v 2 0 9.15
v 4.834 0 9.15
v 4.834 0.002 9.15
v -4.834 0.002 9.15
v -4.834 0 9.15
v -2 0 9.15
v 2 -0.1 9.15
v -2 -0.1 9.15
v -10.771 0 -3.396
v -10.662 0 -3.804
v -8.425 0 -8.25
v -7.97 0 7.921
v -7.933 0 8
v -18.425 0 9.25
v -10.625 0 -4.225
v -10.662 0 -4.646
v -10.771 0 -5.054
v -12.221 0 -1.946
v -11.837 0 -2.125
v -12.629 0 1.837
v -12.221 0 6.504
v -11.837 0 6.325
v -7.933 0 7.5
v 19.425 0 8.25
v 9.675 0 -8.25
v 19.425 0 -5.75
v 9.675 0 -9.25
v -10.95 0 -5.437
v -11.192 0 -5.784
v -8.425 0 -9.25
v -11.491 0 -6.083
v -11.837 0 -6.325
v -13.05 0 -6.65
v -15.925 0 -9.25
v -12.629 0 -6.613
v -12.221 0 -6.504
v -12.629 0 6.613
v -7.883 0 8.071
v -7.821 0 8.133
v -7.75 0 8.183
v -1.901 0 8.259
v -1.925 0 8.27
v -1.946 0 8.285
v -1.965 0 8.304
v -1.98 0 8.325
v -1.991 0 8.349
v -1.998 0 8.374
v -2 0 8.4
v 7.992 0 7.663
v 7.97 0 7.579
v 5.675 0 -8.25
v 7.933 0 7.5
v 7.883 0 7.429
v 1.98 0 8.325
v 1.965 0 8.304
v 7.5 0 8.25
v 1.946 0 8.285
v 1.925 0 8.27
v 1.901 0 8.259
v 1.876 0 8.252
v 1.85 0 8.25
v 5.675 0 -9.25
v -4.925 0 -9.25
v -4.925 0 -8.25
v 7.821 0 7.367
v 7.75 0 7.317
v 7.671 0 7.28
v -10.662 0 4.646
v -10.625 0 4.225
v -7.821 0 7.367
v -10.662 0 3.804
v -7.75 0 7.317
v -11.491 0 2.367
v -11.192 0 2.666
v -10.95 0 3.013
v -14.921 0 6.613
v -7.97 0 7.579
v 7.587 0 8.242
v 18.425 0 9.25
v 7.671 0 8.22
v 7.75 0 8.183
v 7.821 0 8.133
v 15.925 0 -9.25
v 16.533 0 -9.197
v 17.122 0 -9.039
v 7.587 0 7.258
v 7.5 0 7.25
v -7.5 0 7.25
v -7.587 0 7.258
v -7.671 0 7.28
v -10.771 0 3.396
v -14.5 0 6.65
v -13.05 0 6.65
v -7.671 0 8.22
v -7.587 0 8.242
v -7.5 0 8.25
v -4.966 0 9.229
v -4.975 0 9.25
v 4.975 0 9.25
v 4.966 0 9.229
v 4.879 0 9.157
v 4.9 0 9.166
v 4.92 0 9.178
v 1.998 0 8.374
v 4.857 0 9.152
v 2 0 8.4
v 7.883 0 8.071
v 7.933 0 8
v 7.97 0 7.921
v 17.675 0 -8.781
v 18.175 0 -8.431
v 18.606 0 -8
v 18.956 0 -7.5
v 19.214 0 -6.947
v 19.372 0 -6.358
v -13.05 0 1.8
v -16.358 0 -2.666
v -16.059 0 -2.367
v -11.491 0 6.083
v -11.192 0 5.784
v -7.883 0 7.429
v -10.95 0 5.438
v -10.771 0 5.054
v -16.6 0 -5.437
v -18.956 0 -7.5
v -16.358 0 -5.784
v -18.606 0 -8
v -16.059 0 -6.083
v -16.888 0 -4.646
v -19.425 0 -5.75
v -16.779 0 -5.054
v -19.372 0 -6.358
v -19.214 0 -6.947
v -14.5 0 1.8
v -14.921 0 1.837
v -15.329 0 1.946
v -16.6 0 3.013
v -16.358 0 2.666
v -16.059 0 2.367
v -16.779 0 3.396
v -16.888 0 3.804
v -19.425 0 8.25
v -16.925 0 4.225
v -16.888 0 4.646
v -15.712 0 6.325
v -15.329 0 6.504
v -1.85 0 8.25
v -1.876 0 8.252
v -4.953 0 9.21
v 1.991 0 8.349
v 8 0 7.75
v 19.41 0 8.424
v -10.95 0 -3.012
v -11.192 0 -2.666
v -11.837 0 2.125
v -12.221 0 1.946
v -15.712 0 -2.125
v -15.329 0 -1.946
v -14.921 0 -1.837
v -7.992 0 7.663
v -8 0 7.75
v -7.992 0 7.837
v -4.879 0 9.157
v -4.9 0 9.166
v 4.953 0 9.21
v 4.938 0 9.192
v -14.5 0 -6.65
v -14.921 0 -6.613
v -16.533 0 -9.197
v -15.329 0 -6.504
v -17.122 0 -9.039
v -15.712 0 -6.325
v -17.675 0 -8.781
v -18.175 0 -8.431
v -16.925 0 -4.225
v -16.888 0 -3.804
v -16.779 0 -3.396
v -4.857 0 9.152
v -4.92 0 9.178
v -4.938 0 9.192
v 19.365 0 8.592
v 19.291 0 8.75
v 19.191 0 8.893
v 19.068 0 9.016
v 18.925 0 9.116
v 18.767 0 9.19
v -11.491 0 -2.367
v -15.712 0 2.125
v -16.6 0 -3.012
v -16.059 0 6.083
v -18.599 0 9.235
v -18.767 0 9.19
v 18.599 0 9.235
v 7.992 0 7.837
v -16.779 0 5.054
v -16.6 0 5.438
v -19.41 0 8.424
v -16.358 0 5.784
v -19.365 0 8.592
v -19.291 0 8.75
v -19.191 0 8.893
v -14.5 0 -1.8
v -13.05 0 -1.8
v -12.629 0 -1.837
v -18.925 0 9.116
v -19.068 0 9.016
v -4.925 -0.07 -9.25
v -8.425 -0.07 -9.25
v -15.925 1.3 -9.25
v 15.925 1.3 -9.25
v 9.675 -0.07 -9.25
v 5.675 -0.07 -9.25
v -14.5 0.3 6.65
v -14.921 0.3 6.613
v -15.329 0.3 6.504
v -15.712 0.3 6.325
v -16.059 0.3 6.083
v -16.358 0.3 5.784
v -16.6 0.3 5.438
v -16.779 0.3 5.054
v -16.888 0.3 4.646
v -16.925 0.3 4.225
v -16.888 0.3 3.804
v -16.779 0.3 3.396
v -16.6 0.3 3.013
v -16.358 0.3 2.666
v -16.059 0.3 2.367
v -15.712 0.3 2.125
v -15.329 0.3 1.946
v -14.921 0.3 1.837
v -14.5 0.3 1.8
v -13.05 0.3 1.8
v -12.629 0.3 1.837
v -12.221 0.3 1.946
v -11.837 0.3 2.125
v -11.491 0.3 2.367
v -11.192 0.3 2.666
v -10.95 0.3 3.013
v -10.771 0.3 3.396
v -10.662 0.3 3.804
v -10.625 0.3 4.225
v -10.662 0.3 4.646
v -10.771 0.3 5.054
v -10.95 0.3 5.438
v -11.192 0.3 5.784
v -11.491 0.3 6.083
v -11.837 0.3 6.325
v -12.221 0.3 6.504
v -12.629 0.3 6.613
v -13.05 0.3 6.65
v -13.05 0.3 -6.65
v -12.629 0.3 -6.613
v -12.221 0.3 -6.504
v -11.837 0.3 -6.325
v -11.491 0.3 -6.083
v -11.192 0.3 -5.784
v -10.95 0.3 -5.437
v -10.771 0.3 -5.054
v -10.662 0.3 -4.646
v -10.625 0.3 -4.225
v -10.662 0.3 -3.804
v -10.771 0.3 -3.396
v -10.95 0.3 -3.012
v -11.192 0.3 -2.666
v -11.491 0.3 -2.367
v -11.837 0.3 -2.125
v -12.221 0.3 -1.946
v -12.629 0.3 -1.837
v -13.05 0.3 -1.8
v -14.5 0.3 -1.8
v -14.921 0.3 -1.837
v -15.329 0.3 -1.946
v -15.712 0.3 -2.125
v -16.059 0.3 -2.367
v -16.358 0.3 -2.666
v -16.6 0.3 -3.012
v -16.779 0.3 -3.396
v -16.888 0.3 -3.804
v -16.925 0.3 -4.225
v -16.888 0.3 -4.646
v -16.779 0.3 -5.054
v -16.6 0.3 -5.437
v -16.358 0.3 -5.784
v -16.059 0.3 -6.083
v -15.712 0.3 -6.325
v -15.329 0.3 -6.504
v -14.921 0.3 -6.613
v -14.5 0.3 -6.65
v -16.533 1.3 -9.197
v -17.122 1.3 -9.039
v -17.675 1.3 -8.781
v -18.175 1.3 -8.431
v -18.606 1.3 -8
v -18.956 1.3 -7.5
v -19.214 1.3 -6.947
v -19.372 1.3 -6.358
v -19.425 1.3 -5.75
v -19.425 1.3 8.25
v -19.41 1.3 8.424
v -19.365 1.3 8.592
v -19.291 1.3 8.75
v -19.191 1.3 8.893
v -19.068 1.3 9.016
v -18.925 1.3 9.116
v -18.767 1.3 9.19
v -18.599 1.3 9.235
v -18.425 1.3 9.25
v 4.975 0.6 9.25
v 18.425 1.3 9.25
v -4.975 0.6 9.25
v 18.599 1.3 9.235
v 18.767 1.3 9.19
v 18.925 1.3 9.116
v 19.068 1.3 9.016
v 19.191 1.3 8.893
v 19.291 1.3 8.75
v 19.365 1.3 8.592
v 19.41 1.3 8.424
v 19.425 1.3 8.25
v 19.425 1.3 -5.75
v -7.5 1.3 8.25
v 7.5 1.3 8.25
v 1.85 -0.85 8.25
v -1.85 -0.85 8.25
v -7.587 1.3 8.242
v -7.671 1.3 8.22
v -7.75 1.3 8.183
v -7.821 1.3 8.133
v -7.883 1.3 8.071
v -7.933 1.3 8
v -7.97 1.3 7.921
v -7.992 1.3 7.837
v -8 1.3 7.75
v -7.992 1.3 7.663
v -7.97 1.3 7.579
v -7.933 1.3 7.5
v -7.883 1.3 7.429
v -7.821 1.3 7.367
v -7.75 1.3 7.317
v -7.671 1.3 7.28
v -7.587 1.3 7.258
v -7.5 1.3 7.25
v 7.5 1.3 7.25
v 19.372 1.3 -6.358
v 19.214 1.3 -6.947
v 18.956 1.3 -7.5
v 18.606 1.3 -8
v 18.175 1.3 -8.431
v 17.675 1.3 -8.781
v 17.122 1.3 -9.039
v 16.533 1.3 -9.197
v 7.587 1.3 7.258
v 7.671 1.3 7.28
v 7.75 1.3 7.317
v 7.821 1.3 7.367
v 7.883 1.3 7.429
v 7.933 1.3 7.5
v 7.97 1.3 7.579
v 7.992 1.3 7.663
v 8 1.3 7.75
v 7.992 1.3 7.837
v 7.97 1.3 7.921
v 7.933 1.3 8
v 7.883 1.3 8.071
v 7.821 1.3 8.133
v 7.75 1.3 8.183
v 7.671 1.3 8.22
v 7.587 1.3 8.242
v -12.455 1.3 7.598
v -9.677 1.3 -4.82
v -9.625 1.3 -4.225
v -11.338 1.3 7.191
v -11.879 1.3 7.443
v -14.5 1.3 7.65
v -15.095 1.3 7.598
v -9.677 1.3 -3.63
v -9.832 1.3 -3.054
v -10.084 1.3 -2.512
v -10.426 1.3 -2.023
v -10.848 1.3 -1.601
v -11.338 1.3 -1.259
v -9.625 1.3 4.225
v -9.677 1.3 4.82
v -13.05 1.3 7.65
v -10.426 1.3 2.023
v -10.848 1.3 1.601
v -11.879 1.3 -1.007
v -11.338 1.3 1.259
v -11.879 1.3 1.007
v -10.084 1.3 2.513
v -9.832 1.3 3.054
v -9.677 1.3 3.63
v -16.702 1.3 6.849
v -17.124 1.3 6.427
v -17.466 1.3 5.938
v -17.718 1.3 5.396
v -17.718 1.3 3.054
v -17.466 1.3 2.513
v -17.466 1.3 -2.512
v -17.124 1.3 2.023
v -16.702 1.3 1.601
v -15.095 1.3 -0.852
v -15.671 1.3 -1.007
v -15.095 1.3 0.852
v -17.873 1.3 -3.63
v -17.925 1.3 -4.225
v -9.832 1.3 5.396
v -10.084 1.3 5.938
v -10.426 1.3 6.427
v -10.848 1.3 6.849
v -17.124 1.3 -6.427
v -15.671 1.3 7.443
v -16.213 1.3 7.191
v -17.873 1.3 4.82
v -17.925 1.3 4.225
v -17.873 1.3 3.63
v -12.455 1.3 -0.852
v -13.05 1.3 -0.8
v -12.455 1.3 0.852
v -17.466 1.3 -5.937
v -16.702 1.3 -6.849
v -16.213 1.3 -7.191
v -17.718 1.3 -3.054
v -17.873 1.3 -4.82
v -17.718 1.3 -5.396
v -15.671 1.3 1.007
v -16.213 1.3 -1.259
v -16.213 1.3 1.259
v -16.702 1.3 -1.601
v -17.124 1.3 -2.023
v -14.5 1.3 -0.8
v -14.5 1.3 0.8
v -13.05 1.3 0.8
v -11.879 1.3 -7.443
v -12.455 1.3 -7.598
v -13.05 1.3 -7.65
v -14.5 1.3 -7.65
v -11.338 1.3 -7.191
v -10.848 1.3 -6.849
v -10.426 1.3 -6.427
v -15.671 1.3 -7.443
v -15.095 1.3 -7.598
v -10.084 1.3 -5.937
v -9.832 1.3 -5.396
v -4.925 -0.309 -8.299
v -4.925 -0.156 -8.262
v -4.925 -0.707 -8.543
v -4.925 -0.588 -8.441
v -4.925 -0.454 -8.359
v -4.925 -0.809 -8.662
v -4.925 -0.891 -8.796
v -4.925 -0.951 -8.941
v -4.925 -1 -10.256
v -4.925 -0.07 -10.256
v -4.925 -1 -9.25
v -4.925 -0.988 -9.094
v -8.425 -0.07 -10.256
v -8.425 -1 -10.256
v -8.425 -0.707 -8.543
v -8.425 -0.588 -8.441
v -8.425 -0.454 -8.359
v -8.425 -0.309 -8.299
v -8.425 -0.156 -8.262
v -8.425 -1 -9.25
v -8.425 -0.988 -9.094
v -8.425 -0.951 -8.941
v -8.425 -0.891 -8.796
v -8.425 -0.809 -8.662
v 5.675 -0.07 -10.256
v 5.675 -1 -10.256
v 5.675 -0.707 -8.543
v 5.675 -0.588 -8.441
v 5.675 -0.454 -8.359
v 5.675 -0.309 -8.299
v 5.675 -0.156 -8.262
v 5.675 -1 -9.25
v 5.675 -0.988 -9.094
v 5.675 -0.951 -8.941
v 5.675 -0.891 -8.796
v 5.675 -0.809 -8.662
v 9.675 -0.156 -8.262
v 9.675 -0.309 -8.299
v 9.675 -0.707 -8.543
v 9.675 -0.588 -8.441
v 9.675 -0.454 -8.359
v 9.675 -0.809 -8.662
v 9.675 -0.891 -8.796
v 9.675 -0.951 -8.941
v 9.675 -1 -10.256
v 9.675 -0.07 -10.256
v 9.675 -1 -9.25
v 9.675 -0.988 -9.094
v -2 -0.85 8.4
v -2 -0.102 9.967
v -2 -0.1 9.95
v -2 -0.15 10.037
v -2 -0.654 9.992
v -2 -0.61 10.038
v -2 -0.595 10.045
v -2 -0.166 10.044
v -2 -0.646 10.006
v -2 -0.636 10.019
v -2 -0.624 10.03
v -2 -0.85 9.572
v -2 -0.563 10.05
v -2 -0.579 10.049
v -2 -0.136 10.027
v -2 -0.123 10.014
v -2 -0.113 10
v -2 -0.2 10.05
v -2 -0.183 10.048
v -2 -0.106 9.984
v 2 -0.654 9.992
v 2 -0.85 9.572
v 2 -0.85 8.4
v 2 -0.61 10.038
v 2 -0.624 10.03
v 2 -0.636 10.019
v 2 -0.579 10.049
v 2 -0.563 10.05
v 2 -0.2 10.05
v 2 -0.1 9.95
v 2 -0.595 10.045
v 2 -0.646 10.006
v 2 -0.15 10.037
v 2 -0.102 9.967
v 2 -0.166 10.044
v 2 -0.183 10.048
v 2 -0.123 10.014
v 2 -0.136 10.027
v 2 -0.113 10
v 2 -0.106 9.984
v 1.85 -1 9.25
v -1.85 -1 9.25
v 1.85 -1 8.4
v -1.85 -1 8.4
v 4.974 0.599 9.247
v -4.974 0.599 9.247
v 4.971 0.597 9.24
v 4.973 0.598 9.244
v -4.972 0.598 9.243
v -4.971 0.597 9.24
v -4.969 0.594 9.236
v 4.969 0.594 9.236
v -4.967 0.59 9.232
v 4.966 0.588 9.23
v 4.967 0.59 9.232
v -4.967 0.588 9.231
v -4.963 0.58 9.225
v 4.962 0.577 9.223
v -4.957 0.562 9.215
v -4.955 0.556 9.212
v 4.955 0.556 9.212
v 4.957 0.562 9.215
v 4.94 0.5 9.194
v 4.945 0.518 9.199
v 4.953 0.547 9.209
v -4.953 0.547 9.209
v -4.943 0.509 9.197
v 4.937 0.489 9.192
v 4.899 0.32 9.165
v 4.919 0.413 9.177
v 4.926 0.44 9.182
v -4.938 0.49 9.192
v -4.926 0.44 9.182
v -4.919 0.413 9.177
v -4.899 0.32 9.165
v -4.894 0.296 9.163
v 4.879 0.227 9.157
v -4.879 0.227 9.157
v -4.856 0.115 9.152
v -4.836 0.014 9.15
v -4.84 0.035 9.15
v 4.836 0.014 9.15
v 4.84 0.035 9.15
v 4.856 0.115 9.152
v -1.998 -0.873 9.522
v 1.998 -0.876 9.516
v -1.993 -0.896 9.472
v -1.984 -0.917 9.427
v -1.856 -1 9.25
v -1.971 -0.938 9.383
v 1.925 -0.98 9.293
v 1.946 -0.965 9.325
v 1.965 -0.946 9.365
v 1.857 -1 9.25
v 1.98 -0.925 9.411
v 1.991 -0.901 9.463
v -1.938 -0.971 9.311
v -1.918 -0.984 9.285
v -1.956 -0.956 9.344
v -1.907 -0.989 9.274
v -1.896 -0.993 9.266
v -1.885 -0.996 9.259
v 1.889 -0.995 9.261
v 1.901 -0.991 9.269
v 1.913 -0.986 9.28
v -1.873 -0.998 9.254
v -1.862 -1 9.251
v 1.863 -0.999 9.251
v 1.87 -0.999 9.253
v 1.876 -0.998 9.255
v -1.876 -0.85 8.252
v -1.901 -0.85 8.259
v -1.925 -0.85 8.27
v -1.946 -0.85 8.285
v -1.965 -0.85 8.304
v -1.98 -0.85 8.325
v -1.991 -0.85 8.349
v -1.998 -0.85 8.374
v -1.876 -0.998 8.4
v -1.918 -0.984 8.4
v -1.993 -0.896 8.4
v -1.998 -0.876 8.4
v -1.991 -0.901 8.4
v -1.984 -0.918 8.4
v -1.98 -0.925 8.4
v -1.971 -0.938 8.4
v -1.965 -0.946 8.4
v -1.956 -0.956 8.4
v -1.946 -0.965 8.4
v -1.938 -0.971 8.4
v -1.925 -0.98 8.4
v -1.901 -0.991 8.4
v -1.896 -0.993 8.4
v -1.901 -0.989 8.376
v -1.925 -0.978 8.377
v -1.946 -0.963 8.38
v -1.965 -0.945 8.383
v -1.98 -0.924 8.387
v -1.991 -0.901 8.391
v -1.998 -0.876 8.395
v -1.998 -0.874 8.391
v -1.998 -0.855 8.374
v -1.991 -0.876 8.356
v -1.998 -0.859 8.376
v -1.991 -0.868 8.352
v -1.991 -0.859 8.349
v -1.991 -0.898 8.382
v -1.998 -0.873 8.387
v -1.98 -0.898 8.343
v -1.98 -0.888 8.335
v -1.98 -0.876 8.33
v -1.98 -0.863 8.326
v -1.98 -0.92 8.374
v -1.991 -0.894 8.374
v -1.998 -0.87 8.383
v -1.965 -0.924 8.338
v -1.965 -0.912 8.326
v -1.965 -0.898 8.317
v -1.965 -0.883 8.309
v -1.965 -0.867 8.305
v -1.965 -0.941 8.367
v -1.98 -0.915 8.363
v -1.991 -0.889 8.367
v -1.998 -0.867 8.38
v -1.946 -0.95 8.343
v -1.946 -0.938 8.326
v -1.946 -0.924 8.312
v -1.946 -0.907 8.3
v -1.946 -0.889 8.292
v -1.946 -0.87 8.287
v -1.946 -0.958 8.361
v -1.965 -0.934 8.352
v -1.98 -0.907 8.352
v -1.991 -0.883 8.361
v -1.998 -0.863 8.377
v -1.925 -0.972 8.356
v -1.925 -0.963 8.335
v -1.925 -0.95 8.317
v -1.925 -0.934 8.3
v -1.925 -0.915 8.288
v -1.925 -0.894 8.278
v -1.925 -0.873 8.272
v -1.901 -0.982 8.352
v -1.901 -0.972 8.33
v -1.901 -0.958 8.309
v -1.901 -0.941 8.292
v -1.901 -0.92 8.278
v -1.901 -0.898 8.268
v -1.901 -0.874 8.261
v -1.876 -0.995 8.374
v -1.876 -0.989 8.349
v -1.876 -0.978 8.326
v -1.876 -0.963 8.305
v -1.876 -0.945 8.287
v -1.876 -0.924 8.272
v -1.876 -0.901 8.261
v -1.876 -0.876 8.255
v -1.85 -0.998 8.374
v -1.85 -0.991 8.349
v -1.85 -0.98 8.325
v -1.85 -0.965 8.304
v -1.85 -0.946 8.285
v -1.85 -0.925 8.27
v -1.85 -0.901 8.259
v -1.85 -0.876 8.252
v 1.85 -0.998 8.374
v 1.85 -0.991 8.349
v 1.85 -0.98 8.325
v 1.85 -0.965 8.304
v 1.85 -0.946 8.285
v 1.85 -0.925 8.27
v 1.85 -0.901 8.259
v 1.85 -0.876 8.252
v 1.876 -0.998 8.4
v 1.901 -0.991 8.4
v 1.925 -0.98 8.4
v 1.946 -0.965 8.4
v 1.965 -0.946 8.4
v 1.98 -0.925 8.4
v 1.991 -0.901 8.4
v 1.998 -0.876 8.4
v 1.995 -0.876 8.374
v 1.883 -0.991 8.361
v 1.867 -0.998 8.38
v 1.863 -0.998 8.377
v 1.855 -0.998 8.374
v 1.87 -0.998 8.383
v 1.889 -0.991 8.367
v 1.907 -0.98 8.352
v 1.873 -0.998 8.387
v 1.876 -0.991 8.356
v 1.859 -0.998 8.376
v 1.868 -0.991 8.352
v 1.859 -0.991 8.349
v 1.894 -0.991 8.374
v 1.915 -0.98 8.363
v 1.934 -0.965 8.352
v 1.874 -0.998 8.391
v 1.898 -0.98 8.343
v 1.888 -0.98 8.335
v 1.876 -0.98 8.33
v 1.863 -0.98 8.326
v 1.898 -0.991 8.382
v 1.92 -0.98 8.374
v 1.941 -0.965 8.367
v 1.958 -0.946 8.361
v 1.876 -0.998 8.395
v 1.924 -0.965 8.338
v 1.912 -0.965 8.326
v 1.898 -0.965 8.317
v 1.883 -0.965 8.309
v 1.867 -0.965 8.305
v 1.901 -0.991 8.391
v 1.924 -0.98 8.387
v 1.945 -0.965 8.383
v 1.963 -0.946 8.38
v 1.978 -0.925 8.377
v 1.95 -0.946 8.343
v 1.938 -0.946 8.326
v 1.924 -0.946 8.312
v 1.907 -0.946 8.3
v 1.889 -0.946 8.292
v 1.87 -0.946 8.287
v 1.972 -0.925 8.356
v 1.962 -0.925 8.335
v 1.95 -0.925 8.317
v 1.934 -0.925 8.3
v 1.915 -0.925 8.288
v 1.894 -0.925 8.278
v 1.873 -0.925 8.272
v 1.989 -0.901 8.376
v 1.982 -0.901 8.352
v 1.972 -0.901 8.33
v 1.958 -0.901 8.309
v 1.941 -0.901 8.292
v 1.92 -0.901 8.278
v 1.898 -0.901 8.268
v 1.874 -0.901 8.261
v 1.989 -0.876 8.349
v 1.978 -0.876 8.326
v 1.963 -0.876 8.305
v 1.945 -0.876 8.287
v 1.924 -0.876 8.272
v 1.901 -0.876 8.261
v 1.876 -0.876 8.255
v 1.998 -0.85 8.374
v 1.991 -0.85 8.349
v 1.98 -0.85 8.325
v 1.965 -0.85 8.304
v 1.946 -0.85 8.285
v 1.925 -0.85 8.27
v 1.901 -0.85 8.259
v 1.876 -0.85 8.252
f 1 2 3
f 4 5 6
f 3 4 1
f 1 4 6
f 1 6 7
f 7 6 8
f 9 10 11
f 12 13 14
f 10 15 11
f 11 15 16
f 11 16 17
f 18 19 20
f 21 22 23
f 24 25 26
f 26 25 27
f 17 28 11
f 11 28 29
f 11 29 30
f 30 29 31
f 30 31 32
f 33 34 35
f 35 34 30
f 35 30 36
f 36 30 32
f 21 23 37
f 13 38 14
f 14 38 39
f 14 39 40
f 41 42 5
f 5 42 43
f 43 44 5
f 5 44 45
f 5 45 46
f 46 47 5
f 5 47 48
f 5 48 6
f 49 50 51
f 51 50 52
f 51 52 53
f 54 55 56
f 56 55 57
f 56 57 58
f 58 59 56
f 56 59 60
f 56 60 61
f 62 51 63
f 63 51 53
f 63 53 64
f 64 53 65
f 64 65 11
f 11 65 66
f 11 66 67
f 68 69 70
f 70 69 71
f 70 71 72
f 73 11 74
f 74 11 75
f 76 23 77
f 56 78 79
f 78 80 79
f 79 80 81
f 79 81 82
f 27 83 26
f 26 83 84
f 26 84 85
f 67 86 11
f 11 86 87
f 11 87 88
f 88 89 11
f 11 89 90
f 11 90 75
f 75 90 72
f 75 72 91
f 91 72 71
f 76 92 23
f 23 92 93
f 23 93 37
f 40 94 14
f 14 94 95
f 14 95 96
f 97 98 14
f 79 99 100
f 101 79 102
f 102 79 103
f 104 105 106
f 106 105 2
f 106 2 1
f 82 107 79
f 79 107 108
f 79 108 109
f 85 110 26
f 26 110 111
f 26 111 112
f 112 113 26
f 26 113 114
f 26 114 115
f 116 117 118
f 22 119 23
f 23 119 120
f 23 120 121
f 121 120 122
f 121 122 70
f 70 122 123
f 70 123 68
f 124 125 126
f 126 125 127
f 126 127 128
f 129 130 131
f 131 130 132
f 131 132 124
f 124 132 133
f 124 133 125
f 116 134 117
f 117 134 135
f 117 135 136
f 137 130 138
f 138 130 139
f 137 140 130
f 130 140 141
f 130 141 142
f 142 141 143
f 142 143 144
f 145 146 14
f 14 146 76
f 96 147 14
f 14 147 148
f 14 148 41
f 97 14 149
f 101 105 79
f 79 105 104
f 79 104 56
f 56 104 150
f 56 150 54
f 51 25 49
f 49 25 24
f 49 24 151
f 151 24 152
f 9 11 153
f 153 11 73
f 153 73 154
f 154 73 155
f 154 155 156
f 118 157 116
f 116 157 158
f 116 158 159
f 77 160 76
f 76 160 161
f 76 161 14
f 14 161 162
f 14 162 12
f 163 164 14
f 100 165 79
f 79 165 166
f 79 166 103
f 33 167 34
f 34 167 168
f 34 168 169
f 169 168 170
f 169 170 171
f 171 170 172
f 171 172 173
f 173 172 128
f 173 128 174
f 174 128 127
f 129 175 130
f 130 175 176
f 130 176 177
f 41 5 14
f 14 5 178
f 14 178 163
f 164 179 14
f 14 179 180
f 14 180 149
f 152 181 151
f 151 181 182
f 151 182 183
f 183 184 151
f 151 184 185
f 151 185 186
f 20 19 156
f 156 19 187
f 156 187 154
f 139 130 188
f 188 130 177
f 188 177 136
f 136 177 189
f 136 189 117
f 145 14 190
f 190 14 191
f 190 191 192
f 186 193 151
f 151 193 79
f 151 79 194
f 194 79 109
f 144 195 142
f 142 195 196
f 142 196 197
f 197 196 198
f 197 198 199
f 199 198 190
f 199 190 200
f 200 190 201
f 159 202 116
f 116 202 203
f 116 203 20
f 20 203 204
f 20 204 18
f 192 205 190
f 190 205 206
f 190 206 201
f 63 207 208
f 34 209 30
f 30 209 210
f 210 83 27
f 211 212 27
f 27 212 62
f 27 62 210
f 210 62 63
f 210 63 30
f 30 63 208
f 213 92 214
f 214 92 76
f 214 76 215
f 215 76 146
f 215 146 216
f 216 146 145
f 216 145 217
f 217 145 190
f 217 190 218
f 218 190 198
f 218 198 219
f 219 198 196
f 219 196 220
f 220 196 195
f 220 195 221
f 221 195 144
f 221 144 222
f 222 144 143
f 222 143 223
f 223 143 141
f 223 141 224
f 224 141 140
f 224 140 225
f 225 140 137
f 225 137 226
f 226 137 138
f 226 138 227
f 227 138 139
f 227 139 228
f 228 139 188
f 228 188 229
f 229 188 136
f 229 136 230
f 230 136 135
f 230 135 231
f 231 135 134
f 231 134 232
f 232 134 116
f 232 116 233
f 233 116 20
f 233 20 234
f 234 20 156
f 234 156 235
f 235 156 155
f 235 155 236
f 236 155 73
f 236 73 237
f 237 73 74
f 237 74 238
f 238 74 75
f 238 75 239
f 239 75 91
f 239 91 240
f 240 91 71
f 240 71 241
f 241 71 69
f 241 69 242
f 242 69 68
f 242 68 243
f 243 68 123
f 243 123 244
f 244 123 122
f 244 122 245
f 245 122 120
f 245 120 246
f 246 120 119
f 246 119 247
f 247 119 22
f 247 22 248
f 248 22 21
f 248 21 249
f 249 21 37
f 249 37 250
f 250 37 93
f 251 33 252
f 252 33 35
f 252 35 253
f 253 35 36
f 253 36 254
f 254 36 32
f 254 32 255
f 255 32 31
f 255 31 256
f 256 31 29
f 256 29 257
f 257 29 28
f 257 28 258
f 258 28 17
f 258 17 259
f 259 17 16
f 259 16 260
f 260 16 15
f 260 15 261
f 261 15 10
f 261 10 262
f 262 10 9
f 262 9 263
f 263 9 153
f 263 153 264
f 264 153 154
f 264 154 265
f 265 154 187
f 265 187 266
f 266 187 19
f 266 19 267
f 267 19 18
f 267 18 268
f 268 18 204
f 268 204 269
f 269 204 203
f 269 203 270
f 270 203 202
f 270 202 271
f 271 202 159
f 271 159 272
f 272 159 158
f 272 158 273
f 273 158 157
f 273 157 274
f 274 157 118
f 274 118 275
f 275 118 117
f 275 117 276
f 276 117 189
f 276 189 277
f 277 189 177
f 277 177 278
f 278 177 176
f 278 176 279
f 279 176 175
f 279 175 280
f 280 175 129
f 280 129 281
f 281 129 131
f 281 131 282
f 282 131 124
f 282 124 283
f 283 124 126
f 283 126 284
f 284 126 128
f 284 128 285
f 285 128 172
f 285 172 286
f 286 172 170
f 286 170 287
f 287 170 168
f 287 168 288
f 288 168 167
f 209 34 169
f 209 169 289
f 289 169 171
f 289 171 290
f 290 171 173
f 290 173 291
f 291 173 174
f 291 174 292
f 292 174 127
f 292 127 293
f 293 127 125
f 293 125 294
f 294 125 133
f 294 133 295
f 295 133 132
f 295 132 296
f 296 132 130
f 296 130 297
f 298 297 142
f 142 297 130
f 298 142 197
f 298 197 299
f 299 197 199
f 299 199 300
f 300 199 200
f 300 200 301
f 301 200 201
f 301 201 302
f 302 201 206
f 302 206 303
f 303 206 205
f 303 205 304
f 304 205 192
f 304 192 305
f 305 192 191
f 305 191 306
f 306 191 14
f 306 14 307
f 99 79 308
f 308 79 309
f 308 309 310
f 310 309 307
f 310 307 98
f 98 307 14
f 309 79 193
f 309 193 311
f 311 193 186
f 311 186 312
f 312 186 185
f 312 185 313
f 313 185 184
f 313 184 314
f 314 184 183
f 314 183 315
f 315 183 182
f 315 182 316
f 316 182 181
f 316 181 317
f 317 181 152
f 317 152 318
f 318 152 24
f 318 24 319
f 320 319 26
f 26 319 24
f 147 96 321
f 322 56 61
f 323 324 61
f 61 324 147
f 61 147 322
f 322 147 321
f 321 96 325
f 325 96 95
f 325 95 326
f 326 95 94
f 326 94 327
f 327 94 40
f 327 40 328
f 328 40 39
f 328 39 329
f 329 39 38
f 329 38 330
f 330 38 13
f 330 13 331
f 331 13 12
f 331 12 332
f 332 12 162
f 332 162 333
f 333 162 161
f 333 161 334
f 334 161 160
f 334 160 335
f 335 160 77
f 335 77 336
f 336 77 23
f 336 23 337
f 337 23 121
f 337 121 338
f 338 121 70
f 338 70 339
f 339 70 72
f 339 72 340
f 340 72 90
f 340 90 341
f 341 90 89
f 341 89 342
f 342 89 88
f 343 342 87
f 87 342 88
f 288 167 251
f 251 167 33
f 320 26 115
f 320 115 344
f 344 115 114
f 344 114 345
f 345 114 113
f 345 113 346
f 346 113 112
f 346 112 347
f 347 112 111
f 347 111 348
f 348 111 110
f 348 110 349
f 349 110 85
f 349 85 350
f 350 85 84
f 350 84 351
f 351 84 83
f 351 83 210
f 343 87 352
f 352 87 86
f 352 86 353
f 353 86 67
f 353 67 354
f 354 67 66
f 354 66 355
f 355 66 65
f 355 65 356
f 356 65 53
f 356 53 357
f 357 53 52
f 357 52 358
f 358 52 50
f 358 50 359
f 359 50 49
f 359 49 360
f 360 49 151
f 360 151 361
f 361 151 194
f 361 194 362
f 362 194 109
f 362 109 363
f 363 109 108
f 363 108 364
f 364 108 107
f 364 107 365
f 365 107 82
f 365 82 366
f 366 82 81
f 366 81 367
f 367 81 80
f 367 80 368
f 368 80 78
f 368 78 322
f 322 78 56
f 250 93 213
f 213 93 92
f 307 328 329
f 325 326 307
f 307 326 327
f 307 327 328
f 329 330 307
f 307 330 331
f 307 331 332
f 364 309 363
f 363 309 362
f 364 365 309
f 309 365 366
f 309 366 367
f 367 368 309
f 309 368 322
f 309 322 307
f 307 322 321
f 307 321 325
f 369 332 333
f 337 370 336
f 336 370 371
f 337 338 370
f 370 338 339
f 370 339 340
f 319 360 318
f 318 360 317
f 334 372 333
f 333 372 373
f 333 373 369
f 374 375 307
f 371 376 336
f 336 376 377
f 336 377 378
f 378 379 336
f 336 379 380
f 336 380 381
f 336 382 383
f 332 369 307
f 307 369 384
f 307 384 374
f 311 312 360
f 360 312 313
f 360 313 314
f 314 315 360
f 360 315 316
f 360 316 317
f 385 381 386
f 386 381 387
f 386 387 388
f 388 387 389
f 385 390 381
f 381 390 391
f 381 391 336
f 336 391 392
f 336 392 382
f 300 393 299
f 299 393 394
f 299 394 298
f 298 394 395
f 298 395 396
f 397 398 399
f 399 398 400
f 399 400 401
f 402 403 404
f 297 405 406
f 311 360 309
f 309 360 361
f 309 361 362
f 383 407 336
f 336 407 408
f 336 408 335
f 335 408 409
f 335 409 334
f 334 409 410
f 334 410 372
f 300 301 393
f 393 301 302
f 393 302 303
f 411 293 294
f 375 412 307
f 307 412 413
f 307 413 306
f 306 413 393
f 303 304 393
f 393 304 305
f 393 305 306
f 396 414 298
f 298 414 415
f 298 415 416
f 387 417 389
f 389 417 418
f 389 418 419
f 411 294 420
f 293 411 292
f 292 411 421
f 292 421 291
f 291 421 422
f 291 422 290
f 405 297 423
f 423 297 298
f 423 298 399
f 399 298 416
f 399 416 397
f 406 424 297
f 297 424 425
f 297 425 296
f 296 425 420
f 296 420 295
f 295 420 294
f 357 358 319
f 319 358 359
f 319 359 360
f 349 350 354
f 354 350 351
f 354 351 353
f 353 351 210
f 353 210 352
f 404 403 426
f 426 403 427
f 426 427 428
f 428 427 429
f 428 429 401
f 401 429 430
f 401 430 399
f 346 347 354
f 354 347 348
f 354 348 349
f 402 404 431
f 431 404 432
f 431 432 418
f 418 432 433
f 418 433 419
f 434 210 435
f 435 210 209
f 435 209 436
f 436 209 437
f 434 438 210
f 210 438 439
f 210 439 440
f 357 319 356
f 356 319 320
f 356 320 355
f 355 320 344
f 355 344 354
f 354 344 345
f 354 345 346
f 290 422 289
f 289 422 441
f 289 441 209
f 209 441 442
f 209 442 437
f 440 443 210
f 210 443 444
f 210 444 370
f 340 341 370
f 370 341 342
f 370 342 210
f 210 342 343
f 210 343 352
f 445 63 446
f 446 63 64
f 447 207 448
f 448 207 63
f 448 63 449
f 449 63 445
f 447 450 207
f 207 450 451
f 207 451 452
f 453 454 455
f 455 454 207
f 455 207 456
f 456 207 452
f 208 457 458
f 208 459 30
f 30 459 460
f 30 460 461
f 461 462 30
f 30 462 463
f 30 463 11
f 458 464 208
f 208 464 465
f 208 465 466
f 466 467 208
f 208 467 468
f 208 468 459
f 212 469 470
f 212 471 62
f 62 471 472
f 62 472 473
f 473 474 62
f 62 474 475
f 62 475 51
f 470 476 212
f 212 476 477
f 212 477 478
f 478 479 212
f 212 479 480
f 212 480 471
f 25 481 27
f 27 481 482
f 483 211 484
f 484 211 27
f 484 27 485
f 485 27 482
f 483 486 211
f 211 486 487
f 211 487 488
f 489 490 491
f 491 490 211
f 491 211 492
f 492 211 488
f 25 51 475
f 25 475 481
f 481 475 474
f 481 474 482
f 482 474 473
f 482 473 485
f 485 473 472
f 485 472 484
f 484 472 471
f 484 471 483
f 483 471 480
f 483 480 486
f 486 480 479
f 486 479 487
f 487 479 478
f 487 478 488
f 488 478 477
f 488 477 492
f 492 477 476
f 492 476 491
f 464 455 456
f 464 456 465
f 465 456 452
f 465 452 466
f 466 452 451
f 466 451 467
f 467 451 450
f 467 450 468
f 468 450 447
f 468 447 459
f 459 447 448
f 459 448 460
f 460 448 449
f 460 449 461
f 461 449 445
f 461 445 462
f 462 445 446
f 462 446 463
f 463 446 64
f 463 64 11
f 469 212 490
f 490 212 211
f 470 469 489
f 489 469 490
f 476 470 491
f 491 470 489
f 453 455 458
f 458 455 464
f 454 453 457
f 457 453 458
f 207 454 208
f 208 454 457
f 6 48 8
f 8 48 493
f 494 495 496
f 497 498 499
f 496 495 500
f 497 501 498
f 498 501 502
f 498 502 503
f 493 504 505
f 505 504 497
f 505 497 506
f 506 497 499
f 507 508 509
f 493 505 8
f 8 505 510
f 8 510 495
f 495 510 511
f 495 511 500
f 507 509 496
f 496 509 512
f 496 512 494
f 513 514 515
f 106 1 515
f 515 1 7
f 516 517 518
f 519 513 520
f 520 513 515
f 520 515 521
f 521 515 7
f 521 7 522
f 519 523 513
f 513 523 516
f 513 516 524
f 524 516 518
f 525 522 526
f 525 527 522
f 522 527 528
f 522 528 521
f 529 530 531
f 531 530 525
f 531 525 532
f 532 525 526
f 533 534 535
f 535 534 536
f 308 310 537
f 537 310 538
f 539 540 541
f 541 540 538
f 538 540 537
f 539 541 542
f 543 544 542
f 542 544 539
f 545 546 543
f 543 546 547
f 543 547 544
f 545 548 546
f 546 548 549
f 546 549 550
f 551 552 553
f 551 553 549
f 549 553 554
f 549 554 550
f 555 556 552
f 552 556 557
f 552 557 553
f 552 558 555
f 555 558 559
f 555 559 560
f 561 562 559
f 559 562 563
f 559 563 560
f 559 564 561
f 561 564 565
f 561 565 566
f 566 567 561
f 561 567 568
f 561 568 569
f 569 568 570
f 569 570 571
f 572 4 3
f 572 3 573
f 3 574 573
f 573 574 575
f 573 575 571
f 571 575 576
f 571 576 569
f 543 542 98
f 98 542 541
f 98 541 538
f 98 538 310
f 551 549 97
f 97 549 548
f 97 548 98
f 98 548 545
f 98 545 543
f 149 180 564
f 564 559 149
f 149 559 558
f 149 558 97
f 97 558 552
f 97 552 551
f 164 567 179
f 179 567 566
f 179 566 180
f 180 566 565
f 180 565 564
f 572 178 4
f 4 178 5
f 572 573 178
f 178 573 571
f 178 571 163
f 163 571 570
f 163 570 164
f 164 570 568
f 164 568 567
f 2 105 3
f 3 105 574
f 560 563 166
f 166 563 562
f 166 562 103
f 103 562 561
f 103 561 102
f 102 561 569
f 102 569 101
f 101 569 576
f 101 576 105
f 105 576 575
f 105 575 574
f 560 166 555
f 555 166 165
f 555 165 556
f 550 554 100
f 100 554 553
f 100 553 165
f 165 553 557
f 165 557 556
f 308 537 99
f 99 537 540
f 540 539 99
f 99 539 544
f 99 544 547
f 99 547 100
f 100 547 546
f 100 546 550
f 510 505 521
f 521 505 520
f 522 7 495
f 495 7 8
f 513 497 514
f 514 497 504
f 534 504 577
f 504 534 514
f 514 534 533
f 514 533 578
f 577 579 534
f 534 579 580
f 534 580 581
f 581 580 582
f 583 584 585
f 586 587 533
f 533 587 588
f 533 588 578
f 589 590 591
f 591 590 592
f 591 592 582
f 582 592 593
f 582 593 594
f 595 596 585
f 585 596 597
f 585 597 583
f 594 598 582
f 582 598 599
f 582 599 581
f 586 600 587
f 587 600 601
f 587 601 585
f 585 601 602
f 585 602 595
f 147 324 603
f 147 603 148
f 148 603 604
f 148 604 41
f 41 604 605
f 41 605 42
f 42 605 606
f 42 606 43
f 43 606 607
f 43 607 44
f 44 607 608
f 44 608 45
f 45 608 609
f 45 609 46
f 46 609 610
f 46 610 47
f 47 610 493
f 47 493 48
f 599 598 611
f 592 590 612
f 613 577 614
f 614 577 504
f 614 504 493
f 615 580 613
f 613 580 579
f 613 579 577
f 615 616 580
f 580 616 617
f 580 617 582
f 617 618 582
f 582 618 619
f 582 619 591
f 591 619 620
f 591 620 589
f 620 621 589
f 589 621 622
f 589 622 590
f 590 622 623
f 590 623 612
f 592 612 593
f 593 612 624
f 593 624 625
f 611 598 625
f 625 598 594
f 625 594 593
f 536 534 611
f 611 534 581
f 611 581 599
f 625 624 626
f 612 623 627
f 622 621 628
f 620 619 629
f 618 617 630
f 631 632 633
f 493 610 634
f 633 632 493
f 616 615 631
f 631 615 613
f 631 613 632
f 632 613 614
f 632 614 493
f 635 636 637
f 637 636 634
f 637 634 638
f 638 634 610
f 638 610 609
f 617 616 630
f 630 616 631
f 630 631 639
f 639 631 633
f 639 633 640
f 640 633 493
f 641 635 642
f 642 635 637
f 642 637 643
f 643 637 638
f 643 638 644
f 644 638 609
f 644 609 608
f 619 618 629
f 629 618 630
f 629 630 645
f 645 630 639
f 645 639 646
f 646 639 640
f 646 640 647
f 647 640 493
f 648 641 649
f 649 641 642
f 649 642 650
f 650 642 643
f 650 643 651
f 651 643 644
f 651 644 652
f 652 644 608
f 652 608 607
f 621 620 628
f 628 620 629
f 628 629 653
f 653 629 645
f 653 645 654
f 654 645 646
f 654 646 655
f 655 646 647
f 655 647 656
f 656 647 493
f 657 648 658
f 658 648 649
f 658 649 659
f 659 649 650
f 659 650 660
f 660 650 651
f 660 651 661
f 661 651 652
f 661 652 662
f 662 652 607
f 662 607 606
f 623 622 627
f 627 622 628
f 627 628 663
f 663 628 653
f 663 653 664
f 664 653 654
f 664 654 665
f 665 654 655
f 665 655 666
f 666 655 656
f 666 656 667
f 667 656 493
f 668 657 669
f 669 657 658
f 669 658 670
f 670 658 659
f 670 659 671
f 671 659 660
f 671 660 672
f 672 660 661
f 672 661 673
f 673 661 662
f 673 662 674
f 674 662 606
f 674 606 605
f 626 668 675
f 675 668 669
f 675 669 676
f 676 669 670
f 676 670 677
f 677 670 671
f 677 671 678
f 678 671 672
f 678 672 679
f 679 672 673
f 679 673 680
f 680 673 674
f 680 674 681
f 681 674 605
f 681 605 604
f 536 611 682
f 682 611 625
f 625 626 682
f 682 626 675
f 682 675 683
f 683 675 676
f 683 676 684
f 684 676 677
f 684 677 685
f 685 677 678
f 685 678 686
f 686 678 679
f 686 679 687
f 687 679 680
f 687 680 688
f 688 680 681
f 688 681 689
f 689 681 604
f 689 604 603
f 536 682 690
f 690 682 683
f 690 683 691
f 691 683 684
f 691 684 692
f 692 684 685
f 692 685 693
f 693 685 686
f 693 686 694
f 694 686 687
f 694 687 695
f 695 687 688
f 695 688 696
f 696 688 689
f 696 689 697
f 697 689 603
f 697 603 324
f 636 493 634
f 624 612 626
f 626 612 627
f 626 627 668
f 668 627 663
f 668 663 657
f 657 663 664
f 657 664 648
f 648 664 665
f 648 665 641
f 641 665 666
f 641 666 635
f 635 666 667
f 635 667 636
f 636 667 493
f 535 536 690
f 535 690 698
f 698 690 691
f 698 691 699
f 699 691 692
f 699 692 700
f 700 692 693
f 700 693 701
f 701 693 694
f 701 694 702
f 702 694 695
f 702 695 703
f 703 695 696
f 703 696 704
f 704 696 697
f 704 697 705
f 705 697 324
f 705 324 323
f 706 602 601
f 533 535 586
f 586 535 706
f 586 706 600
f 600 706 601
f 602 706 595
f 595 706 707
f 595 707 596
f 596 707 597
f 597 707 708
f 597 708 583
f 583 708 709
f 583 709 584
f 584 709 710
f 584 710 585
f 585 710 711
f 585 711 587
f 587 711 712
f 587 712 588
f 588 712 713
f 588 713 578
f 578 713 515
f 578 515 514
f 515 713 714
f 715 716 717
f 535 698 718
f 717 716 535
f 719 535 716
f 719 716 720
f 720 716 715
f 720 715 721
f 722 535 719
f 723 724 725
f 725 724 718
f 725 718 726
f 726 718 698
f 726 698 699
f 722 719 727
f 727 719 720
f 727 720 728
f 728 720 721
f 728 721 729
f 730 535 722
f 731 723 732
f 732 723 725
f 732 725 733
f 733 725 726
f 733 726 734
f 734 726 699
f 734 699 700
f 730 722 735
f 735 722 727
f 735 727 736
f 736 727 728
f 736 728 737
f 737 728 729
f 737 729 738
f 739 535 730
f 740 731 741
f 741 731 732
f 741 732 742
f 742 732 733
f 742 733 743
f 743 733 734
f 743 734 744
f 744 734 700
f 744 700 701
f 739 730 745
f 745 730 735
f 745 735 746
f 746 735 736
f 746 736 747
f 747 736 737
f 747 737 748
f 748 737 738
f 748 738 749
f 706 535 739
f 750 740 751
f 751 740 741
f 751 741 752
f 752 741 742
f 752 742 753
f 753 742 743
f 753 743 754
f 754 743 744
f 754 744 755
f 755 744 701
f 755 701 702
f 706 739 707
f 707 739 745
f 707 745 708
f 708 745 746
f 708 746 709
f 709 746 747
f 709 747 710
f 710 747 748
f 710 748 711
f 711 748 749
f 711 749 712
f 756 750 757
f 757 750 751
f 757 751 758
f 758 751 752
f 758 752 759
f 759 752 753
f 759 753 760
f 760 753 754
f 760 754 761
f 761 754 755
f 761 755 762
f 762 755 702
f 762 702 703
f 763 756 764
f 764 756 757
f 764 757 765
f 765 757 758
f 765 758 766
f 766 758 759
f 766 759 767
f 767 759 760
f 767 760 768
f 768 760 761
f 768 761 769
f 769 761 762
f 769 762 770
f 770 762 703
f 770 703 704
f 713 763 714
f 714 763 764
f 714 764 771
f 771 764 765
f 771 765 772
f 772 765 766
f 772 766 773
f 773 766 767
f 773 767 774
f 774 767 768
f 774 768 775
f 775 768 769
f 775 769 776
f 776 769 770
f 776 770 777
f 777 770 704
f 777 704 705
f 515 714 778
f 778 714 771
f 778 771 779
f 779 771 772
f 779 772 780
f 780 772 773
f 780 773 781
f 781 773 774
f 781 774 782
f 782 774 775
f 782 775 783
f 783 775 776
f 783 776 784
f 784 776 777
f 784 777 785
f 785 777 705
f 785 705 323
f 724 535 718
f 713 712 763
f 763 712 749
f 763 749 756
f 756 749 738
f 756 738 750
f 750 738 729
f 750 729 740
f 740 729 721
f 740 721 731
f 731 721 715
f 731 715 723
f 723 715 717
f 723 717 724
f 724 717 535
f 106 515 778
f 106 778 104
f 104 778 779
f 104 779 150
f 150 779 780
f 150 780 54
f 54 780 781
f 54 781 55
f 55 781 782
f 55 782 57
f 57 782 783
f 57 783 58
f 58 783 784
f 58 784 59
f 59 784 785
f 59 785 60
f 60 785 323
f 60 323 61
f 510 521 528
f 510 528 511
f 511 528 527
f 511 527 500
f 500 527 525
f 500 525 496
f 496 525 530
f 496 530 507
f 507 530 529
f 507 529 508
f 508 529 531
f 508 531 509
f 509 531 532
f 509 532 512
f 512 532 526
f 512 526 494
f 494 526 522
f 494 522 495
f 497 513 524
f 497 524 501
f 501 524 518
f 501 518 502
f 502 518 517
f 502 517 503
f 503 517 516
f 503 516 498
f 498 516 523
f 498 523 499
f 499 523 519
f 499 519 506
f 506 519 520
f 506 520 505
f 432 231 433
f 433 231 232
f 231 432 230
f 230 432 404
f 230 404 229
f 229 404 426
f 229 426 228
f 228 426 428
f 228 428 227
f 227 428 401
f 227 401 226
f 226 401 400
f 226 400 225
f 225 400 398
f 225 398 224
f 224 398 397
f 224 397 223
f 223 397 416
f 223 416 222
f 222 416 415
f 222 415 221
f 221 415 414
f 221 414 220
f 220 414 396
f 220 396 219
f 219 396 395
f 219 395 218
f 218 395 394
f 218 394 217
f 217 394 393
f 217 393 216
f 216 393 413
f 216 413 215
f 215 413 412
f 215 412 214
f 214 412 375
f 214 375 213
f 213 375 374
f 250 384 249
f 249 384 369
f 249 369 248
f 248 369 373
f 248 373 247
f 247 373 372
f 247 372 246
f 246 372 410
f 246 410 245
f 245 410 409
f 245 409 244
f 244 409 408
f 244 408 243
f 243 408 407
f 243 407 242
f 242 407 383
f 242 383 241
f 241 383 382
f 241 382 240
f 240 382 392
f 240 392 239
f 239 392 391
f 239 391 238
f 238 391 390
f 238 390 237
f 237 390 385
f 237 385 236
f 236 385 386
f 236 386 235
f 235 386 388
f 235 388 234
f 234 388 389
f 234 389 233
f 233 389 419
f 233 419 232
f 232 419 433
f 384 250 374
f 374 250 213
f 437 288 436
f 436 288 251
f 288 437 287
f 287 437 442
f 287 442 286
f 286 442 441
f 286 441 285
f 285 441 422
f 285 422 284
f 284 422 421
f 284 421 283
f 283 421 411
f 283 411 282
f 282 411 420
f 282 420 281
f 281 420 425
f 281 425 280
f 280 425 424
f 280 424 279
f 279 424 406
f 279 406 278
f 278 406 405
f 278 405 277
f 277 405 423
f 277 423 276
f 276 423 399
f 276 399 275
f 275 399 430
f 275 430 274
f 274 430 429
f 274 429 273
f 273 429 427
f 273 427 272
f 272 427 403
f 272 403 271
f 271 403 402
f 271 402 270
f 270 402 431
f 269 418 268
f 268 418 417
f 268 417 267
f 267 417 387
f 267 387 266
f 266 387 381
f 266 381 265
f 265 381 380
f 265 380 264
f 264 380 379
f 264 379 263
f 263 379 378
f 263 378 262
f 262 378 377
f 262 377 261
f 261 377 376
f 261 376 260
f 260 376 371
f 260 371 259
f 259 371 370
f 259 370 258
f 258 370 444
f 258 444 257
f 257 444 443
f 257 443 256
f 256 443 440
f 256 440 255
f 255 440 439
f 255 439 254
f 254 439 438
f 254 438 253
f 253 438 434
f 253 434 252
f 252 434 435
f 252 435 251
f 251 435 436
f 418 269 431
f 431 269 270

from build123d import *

# Parameters (mm, degrees)
SKETCH1_W           = 3.5
SKETCH1_H           = 1
SKETCH1_W_2         = 4
BOSS_EXTRUDE1_DEPTH = 1.3
SKETCH1_7_W         = 3.5
SKETCH1_7_H         = 1
BOSS_EXTRUDE3_DEPTH = 1
SKETCH1_8_W         = 4
SKETCH1_8_H         = 1
BOSS_EXTRUDE4_DEPTH = 1
FILLET2_R           = 1
SKETCH5_W           = 1.00602476
SKETCH5_H           = 0.93
BOSS_EXTRUDE5_DEPTH = 4
SKETCH7_W           = 1.00602476
SKETCH7_H           = 0.93
BOSS_EXTRUDE6_DEPTH = 3.5
BOSS_EXTRUDE7_DEPTH = 1
BOSS_EXTRUDE8_START = 1.3
BOSS_EXTRUDE8_DEPTH = 0.7
FILLET6_START       = -4.975
FILLET6_DEPTH       = 9.95
FILLET7_R           = 0.15
SKETCH10_W          = 0.9
SKETCH10_H          = 0.9
BOSS_EXTRUDE9_DEPTH = 4
CHAMFER2_SIZE       = 0.8
CHAMFER2_SIZE2      = 0.373046127
FILLET9_R           = 0.15
FILLET10_R          = 0.1
CHAMFER5_SIZE       = 1


with BuildPart() as part:
    # Sketch1 → Boss-Extrude1 (new body)
    # profile 1 of 4: a face of its own
    with BuildSketch(Plane(origin=(0, 0, 0), x_dir=(1, 0, 0), z_dir=(0, 1, 0))):
        with BuildLine():
            Line((0, 9.25), (-4.925, 9.25))
            Line((-4.925, 9.25), (-4.925, 8.25))
            Line((-4.925, 8.25), (-8.425, 8.25))
            Line((-8.425, 8.25), (-8.425, 9.25))
            Line((-8.425, 9.25), (-15.925, 9.25))
            ThreePointArc((-15.925, 9.25), (-18.399873734, 8.224873734), (-19.425, 5.75))
            Line((-19.425, 5.75), (-19.425, -8.25))
            ThreePointArc((-19.425, -8.25), (-19.132106781, -8.957106781), (-18.425, -9.25))
            Line((-18.425, -9.25), (-8, -9.25))
            Line((-8, -9.25), (-4.975, -9.25))
            Line((-4.975, -9.25), (-4.975, -9.15))
            Line((-4.975, -9.15), (-2, -9.15))
            Line((-2, -9.15), (-2, -8.75))
            Line((-2, -8.75), (-2, -8.25))
            Line((-2, -8.25), (-7.5, -8.25))
            ThreePointArc((-7.5, -8.25), (-8, -7.75), (-7.5, -7.25))
            Line((-7.5, -7.25), (7.5, -7.25))
            ThreePointArc((7.5, -7.25), (8, -7.75), (7.5, -8.25))
            Line((7.5, -8.25), (2, -8.25))
            Line((2, -8.25), (2, -8.75))
            Line((2, -8.75), (2, -9.15))
            Line((2, -9.15), (4.975, -9.15))
            Line((4.975, -9.15), (4.975, -9.25))
            Line((4.975, -9.25), (8, -9.25))
            Line((8, -9.25), (18.425, -9.25))
            ThreePointArc((18.425, -9.25), (19.132106781, -8.957106781), (19.425, -8.25))
            Line((19.425, -8.25), (19.425, 5.75))
            ThreePointArc((19.425, 5.75), (18.399873734, 8.224873734), (15.925, 9.25))
            Line((15.925, 9.25), (9.675, 9.25))
            Line((9.675, 9.25), (9.675, 8.25))
            Line((9.675, 8.25), (5.675, 8.25))
            Line((5.675, 8.25), (5.675, 9.25))
            Line((5.675, 9.25), (0, 9.25))
        make_face()
        with BuildLine():
            Line((-13.05, -6.65), (-14.5, -6.65))
            ThreePointArc((-14.5, -6.65), (-16.214733944, -5.939733944), (-16.925, -4.225))
            ThreePointArc((-16.925, -4.225), (-16.214733944, -2.510266056), (-14.5, -1.8))
            Line((-14.5, -1.8), (-13.05, -1.8))
            ThreePointArc((-13.05, -1.8), (-11.335266056, -2.510266056), (-10.625, -4.225))
            ThreePointArc((-10.625, -4.225), (-11.335266056, -5.939733944), (-13.05, -6.65))
        make_face(mode=Mode.SUBTRACT)
        with BuildLine():
            ThreePointArc((-16.925, 4.225), (-16.214733944, 5.939733944), (-14.5, 6.65))
            Line((-14.5, 6.65), (-13.05, 6.65))
            ThreePointArc((-13.05, 6.65), (-11.335266056, 5.939733944), (-10.625, 4.225))
            ThreePointArc((-10.625, 4.225), (-11.335266056, 2.510266056), (-13.05, 1.8))
            Line((-13.05, 1.8), (-14.5, 1.8))
            ThreePointArc((-14.5, 1.8), (-16.214733944, 2.510266056), (-16.925, 4.225))
        make_face(mode=Mode.SUBTRACT)
    # profile 2 of 4: a face of its own
    with BuildSketch(Plane(origin=(0, 0, 0), x_dir=(1, 0, 0), z_dir=(0, 1, 0))):
        with Locations((-6.675, 8.75)):
            Rectangle(SKETCH1_W, SKETCH1_H)
    # profile 3 of 4: a face of its own
    with BuildSketch(Plane(origin=(0, 0, 0), x_dir=(1, 0, 0), z_dir=(0, 1, 0))):
        with Locations((7.675, 8.75)):
            Rectangle(SKETCH1_W_2, SKETCH1_H)
    # profile 4 of 4: a face of its own
    with BuildSketch(Plane(origin=(0, 0, 0), x_dir=(1, 0, 0), z_dir=(0, 1, 0))):
        Polygon((-2, -8.75), (-2, -9.15), (2, -9.15), (2, -8.75), (2, -8.25), (-2, -8.25), align=None)
    extrude(amount=BOSS_EXTRUDE1_DEPTH)

    # Sketch1<7> → Boss-Extrude3 (add)
    with BuildSketch(Plane(origin=(0, 0, 0), x_dir=(1, 0, 0), z_dir=(0, 1, 0))):
        with Locations((-6.675, 8.75)):
            Rectangle(SKETCH1_7_W, SKETCH1_7_H)
    extrude(amount=-BOSS_EXTRUDE3_DEPTH)

    # Sketch1<8> → Boss-Extrude4 (add)
    with BuildSketch(Plane(origin=(0, 0, 0), x_dir=(1, 0, 0), z_dir=(0, 1, 0))):
        with Locations((7.675, 8.75)):
            Rectangle(SKETCH1_8_W, SKETCH1_8_H)
    extrude(amount=-BOSS_EXTRUDE4_DEPTH)

    # Fillet2
    fillet2_edges = [part.edges().sort_by_distance(p)[0] for p in [
        (7.675, -1, -8.25),
        (-6.675, -1, -8.25),
    ]]
    fillet(fillet2_edges, radius=FILLET2_R - 0.0001)  # a hair under: the kernel refuses the full size

    # Sketch5 → Boss-Extrude5 (add)
    with BuildSketch(Plane.ZY.offset(-9.675)):
        with Locations((-9.75301238, -0.535)):
            Rectangle(SKETCH5_W, SKETCH5_H)
    extrude(amount=BOSS_EXTRUDE5_DEPTH)

    # Sketch7 → Boss-Extrude6 (add)
    with BuildSketch(Plane.ZY.offset(8.425)):
        with Locations((-9.75301238, -0.535)):
            Rectangle(SKETCH7_W, SKETCH7_H)
    extrude(amount=-BOSS_EXTRUDE6_DEPTH)

    # Sketch1<12> → Boss-Extrude7 (add)
    with BuildSketch(Plane(origin=(0, 0, 0), x_dir=(1, 0, 0), z_dir=(0, 1, 0))):
        Polygon((-2, -8.75), (-2, -9.15), (2, -9.15), (2, -8.75), (2, -8.25), (-2, -8.25), align=None)
    extrude(amount=-BOSS_EXTRUDE7_DEPTH)

    # Sketch1<13> → Boss-Extrude8 (add)
    with BuildSketch(Plane(origin=(0, 0, 0), x_dir=(1, 0, 0), z_dir=(0, 1, 0)).offset(BOSS_EXTRUDE8_START)):
        Polygon((-4.975, -9.15), (-4.975, -9.25), (0, -9.25), (4.975, -9.25), (4.975, -9.15), (2, -9.15), (-2, -9.15), align=None)
    extrude(amount=-BOSS_EXTRUDE8_DEPTH)

    # Fillet6: read off the stored shape, not the designer's step
    # Fillet6 outline → Fillet6 (add)
    with BuildSketch(Plane.YZ.offset(FILLET6_START)):
        with BuildLine():
            Line((0.6, 9.15), (0.6, 9.25))
            add(Edge.make_bspline(
                [(0.6, 9.25), (0.59163758, 9.15), (0.002086963, 9.15)],
                knots=[0, 0, 0, 1, 1, 1], degree=2, weights=[1, 0.735980072, 1]))
            Line((0.002086963, 9.15), (0.6, 9.15))
        make_face()
    extrude(amount=FILLET6_DEPTH)

    # Fillet7
    # the kernel refuses this fillet: 0.15 mm, written as the material it adds along each edge
    with BuildSketch(Plane(origin=(-4.975, 0, 9.15), x_dir=(1, 0, 0), z_dir=(0, 1, 0))) as fillet7_piece_1:
        with BuildLine():
            CenterArc((0.141421356, -0.15), FILLET7_R, 90, 70.528779366)
            Line((0, -0.1), (-0.002828427, -0.099))
            ThreePointArc((-0.002828427, -0.099), (-0.003, -0.05), (-0.003, 0))
            Line((-0.003, 0), (0, 0.003))
            Line((0, 0.003), (0.141421356, 0.003))
            Line((0.141421356, 0.003), (0.141421356, 0))
        make_face()
    extrude(amount=0.603127727)
    with BuildSketch(Plane(origin=(4.975, 0, 9.15), x_dir=(0, 0, 1), z_dir=(0, 1, 0))) as fillet7_piece_2:
        with BuildLine():
            CenterArc((0.15, -0.141421356), FILLET7_R, 109.471220634, 70.528779366)
            Line((0, -0.141421356), (-0.003, -0.141421356))
            Line((-0.003, -0.141421356), (-0.003, 0))
            Line((-0.003, 0), (0, 0.003))
            ThreePointArc((0, 0.003), (0.05, 0.003), (0.099, 0.002828427))
            Line((0.099, 0.002828427), (0.1, 0))
        make_face()
    extrude(amount=0.603127727)

    # Sketch10 → Boss-Extrude9 (add)
    with BuildSketch(Plane(origin=(2, 0, 0), x_dir=(0, 0, -1), z_dir=(1, 0, 0))):
        with Locations((-9.6, -0.55)):
            Rectangle(SKETCH10_W, SKETCH10_H)
    extrude(amount=-BOSS_EXTRUDE9_DEPTH)

    # Chamfer2
    chamfer2_edges = [part.edges().sort_by_distance(p)[0] for p in [
        (0, -1, 10.05),
    ]]
    chamfer2_side = [part.faces().sort_by_distance(p)[0] for p in [
        (0, -1, 9.15),
    ]]
    chamfer(chamfer2_edges, length=CHAMFER2_SIZE, length2=CHAMFER2_SIZE2, reference=chamfer2_side[0])

    # Fillet9
    fillet9_edges = [part.edges().sort_by_distance(p)[0] for p in [
        (-2, -0.5, 8.25),
        (2, -0.5, 8.25),
        (0, -1, 8.25),
        (2, -1, 8.75),
        (-2, -1, 8.75),
    ]]
    fillet(fillet9_edges, radius=FILLET9_R)

    # Fillet10
    fillet10_edges = [part.edges().sort_by_distance(p)[0] for p in [
        (0, -0.1, 10.05),
        (0, -0.626953873, 10.05),
    ]]
    fillet(fillet10_edges, radius=FILLET10_R)

    # Chamfer5
    chamfer5_edges = [part.edges().sort_by_distance(p)[0] for p in [
        (-10.625, 1.3, -4.225),
        (-13.775, 1.3, -1.8),
        (-16.925, 1.3, -4.225),
        (-13.775, 1.3, -6.65),
        (-16.925, 1.3, 4.225),
        (-13.775, 1.3, 1.8),
        (-10.625, 1.3, 4.225),
        (-13.775, 1.3, 6.65),
    ]]
    chamfer(chamfer5_edges, length=CHAMFER5_SIZE)


solid = part.part
